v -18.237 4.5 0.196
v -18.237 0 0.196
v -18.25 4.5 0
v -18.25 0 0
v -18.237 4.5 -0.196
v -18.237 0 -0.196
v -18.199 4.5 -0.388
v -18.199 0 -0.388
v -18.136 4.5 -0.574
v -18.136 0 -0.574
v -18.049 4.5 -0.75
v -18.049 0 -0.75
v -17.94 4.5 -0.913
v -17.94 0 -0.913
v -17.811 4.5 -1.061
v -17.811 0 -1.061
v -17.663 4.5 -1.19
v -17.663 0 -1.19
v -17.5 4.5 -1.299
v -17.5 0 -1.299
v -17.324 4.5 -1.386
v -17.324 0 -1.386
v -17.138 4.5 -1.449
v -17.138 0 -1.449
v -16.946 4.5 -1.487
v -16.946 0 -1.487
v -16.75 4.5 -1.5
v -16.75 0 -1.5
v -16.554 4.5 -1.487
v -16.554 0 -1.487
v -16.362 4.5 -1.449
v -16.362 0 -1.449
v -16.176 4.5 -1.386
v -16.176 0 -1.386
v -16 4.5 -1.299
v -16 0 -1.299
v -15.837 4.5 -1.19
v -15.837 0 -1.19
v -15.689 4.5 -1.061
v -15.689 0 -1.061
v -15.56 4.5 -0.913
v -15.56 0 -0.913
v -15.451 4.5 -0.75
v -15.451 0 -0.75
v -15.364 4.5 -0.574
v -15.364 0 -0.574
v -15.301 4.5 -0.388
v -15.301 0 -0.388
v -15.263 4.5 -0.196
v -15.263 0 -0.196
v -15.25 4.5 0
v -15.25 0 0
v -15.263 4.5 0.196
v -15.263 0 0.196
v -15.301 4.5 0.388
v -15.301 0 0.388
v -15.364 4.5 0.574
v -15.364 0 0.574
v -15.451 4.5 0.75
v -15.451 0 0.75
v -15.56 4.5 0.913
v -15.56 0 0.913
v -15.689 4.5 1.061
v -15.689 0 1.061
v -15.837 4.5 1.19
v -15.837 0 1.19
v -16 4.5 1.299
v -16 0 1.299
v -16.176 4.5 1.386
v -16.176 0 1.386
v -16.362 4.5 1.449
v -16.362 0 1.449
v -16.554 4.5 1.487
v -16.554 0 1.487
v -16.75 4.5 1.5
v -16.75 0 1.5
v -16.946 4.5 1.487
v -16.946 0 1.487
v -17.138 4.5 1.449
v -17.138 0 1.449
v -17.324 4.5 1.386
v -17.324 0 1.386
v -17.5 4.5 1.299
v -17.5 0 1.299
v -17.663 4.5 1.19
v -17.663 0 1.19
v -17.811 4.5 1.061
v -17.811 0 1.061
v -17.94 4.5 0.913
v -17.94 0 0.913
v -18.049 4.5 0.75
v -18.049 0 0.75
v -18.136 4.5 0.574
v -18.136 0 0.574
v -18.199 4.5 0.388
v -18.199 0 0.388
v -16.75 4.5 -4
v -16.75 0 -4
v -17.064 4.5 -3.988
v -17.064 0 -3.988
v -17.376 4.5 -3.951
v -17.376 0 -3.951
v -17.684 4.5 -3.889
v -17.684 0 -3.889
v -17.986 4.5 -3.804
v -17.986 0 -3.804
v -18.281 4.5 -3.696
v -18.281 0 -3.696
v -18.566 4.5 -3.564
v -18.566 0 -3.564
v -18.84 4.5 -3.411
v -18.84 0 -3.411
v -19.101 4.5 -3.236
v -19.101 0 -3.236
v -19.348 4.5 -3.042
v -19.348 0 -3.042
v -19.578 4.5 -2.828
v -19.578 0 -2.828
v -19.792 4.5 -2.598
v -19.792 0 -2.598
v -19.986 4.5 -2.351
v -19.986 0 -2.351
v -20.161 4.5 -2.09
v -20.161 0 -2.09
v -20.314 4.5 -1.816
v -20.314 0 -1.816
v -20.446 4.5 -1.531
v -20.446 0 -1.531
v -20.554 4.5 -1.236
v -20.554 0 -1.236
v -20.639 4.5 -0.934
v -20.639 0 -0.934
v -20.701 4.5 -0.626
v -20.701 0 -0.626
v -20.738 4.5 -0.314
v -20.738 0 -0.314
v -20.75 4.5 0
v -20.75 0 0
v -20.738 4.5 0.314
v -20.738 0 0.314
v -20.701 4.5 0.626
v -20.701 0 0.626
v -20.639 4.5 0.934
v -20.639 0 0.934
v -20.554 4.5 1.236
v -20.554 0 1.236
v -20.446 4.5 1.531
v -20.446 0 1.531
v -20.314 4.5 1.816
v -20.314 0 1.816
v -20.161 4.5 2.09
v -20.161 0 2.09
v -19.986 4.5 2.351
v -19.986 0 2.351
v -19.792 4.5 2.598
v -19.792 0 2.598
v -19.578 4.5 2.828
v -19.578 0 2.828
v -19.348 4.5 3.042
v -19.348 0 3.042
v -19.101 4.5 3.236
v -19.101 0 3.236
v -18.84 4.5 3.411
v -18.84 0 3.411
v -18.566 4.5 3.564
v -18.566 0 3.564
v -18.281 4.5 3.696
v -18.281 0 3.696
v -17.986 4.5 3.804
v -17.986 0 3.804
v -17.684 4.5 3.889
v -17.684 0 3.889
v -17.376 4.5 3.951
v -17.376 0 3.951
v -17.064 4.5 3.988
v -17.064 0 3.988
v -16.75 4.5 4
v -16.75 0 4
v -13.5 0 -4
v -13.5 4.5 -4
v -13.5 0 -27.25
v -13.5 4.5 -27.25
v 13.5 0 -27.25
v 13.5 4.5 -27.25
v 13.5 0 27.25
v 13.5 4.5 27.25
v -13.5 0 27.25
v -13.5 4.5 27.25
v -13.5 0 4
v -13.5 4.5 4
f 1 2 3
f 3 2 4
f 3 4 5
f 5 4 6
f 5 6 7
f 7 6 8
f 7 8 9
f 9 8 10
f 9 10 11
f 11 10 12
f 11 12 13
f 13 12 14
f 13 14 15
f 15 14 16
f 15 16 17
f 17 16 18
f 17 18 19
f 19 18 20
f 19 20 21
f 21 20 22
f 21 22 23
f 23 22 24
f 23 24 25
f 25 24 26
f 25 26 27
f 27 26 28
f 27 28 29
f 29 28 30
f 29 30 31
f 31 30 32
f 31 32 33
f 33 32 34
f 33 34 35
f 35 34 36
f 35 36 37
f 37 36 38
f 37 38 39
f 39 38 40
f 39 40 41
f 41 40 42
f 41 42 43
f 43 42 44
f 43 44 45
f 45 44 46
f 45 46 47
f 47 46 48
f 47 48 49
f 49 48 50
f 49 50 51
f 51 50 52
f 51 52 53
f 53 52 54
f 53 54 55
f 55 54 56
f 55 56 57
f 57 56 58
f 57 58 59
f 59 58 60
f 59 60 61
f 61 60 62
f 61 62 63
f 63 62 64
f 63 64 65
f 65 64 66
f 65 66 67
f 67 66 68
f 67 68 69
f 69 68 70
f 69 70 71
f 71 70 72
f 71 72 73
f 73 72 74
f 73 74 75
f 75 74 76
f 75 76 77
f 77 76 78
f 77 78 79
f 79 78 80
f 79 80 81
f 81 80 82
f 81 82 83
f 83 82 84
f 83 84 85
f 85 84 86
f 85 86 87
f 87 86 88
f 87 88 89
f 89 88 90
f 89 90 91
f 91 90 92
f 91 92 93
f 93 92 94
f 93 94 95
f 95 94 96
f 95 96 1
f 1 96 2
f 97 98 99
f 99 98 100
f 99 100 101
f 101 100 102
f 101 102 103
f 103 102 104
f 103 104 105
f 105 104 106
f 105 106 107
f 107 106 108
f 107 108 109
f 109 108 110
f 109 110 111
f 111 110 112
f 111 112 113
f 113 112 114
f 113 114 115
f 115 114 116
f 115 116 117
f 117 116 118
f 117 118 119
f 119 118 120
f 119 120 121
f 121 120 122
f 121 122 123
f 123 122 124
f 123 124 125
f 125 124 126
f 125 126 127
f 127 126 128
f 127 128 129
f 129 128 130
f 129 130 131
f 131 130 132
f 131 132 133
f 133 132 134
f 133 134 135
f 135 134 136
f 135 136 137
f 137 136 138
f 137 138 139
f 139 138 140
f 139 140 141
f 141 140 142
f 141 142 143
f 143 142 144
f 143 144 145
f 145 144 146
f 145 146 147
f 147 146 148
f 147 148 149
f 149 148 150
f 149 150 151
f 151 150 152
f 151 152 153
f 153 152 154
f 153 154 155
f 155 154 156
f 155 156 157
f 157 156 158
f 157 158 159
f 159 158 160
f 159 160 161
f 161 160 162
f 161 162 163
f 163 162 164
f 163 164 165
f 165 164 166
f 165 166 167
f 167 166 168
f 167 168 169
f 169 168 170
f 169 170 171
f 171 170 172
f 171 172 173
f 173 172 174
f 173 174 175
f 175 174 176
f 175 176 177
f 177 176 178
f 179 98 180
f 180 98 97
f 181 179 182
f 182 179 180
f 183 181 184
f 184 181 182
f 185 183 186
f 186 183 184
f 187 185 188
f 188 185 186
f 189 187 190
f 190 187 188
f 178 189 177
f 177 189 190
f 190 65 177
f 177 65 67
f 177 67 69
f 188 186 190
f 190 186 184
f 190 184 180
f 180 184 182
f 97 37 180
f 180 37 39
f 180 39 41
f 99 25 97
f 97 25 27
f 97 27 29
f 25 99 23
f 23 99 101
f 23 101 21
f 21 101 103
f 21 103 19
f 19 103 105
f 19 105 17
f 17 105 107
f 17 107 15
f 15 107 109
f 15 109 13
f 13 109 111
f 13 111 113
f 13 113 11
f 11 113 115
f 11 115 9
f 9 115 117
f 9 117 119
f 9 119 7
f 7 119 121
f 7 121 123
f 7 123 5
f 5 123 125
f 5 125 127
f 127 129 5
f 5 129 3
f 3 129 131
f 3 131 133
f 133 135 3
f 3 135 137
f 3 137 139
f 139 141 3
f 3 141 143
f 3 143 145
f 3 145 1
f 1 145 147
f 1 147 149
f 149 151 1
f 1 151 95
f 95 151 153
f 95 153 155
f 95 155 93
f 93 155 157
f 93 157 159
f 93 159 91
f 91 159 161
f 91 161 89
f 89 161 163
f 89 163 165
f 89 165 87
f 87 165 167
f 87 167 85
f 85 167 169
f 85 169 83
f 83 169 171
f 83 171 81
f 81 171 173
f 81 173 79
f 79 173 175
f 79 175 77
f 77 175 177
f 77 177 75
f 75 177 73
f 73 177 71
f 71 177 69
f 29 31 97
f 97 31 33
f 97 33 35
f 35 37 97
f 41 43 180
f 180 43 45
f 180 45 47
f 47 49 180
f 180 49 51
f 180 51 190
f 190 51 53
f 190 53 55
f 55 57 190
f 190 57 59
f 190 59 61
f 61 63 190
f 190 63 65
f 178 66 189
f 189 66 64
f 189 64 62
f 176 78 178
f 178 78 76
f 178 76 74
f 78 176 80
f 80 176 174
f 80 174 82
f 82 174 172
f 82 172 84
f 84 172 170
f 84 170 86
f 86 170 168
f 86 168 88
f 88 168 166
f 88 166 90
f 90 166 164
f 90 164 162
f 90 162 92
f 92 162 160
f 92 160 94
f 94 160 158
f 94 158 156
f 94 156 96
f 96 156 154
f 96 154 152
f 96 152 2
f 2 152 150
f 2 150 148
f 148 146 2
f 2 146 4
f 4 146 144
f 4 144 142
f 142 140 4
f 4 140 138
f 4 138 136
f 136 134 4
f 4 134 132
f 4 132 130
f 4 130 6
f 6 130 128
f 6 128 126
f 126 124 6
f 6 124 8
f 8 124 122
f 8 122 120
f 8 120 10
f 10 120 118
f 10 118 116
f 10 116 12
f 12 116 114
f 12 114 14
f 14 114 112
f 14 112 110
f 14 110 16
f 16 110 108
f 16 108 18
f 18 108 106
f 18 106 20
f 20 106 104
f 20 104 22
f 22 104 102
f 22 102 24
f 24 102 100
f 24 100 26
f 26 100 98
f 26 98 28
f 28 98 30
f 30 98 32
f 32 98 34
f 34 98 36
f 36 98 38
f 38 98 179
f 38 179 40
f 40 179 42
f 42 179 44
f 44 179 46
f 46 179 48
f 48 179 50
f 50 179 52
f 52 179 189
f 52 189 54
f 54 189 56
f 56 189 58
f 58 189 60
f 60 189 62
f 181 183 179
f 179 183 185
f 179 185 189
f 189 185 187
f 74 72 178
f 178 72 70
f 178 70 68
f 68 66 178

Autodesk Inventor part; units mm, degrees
ref_plane "YZ Plane" through (0, 0, 0) normal (1, 0, 0) x (0, 1, 0)
ref_plane "XZ Plane" through (0, 0, 0) normal (0, 1, 0) x (-1, 0, 0)
ref_plane "XY Plane" through (0, 0, 0) normal (0, 0, 1) x (1, 0, 0)
sketch "Sketch1" plane through (0, 0, 0) normal (0, 1, 0) x (-1, 0, 0)
  line L0 (13.5, 27.25) -> (-13.5, 27.25)
  line L1 (-13.5, 27.25) -> (-13.5, -27.25)
  line L2 (-13.5, -27.25) -> (13.5, -27.25)
  line L3 (13.5, -27.25) -> (13.5, 27.25)
  line L4 (13.5, 27.25) -> (-13.5, -27.25) construction
  line L5 (-13.5, 27.25) -> (13.5, -27.25) construction
  circle A0 centre (16.75, 0) radius 1.5
  circle A1 centre (16.75, 0) radius 4
  line L6 (20.75, -4) -> (12.75, -4)
  line L7 (12.75, -4) -> (12.75, 4)
  line L8 (12.75, 4) -> (20.75, 4)
  line L9 (20.75, 4) -> (20.75, -4)
  line L10 (20.75, -4) -> (12.75, 4) construction
  line L11 (12.75, -4) -> (20.75, 4) construction
  point P0 (0, 0)
  point P1 (16.75, -4)
  point P2 (16.75, 4)
  point P3 (13.5, 4)
  point P4 (13.5, -4)
  dimension "d0" = 54.5
  dimension "d1" = 27
  dimension "d3" = 3
  dimension "d4" = 8
  dimension "d7" = 3.25
extrude "Extrusion1" add sketch "Sketch1" along normal blind 4.5 contours L3 L8 L7 L6 L2 L1 L0 | L8 A1 L3 | L3 A1 L7 L8 | A1 L3 | L3 A1 | A1 L6 L3 | L3 L6 L7 A1
properties part number "Ortak_bat_lid"
